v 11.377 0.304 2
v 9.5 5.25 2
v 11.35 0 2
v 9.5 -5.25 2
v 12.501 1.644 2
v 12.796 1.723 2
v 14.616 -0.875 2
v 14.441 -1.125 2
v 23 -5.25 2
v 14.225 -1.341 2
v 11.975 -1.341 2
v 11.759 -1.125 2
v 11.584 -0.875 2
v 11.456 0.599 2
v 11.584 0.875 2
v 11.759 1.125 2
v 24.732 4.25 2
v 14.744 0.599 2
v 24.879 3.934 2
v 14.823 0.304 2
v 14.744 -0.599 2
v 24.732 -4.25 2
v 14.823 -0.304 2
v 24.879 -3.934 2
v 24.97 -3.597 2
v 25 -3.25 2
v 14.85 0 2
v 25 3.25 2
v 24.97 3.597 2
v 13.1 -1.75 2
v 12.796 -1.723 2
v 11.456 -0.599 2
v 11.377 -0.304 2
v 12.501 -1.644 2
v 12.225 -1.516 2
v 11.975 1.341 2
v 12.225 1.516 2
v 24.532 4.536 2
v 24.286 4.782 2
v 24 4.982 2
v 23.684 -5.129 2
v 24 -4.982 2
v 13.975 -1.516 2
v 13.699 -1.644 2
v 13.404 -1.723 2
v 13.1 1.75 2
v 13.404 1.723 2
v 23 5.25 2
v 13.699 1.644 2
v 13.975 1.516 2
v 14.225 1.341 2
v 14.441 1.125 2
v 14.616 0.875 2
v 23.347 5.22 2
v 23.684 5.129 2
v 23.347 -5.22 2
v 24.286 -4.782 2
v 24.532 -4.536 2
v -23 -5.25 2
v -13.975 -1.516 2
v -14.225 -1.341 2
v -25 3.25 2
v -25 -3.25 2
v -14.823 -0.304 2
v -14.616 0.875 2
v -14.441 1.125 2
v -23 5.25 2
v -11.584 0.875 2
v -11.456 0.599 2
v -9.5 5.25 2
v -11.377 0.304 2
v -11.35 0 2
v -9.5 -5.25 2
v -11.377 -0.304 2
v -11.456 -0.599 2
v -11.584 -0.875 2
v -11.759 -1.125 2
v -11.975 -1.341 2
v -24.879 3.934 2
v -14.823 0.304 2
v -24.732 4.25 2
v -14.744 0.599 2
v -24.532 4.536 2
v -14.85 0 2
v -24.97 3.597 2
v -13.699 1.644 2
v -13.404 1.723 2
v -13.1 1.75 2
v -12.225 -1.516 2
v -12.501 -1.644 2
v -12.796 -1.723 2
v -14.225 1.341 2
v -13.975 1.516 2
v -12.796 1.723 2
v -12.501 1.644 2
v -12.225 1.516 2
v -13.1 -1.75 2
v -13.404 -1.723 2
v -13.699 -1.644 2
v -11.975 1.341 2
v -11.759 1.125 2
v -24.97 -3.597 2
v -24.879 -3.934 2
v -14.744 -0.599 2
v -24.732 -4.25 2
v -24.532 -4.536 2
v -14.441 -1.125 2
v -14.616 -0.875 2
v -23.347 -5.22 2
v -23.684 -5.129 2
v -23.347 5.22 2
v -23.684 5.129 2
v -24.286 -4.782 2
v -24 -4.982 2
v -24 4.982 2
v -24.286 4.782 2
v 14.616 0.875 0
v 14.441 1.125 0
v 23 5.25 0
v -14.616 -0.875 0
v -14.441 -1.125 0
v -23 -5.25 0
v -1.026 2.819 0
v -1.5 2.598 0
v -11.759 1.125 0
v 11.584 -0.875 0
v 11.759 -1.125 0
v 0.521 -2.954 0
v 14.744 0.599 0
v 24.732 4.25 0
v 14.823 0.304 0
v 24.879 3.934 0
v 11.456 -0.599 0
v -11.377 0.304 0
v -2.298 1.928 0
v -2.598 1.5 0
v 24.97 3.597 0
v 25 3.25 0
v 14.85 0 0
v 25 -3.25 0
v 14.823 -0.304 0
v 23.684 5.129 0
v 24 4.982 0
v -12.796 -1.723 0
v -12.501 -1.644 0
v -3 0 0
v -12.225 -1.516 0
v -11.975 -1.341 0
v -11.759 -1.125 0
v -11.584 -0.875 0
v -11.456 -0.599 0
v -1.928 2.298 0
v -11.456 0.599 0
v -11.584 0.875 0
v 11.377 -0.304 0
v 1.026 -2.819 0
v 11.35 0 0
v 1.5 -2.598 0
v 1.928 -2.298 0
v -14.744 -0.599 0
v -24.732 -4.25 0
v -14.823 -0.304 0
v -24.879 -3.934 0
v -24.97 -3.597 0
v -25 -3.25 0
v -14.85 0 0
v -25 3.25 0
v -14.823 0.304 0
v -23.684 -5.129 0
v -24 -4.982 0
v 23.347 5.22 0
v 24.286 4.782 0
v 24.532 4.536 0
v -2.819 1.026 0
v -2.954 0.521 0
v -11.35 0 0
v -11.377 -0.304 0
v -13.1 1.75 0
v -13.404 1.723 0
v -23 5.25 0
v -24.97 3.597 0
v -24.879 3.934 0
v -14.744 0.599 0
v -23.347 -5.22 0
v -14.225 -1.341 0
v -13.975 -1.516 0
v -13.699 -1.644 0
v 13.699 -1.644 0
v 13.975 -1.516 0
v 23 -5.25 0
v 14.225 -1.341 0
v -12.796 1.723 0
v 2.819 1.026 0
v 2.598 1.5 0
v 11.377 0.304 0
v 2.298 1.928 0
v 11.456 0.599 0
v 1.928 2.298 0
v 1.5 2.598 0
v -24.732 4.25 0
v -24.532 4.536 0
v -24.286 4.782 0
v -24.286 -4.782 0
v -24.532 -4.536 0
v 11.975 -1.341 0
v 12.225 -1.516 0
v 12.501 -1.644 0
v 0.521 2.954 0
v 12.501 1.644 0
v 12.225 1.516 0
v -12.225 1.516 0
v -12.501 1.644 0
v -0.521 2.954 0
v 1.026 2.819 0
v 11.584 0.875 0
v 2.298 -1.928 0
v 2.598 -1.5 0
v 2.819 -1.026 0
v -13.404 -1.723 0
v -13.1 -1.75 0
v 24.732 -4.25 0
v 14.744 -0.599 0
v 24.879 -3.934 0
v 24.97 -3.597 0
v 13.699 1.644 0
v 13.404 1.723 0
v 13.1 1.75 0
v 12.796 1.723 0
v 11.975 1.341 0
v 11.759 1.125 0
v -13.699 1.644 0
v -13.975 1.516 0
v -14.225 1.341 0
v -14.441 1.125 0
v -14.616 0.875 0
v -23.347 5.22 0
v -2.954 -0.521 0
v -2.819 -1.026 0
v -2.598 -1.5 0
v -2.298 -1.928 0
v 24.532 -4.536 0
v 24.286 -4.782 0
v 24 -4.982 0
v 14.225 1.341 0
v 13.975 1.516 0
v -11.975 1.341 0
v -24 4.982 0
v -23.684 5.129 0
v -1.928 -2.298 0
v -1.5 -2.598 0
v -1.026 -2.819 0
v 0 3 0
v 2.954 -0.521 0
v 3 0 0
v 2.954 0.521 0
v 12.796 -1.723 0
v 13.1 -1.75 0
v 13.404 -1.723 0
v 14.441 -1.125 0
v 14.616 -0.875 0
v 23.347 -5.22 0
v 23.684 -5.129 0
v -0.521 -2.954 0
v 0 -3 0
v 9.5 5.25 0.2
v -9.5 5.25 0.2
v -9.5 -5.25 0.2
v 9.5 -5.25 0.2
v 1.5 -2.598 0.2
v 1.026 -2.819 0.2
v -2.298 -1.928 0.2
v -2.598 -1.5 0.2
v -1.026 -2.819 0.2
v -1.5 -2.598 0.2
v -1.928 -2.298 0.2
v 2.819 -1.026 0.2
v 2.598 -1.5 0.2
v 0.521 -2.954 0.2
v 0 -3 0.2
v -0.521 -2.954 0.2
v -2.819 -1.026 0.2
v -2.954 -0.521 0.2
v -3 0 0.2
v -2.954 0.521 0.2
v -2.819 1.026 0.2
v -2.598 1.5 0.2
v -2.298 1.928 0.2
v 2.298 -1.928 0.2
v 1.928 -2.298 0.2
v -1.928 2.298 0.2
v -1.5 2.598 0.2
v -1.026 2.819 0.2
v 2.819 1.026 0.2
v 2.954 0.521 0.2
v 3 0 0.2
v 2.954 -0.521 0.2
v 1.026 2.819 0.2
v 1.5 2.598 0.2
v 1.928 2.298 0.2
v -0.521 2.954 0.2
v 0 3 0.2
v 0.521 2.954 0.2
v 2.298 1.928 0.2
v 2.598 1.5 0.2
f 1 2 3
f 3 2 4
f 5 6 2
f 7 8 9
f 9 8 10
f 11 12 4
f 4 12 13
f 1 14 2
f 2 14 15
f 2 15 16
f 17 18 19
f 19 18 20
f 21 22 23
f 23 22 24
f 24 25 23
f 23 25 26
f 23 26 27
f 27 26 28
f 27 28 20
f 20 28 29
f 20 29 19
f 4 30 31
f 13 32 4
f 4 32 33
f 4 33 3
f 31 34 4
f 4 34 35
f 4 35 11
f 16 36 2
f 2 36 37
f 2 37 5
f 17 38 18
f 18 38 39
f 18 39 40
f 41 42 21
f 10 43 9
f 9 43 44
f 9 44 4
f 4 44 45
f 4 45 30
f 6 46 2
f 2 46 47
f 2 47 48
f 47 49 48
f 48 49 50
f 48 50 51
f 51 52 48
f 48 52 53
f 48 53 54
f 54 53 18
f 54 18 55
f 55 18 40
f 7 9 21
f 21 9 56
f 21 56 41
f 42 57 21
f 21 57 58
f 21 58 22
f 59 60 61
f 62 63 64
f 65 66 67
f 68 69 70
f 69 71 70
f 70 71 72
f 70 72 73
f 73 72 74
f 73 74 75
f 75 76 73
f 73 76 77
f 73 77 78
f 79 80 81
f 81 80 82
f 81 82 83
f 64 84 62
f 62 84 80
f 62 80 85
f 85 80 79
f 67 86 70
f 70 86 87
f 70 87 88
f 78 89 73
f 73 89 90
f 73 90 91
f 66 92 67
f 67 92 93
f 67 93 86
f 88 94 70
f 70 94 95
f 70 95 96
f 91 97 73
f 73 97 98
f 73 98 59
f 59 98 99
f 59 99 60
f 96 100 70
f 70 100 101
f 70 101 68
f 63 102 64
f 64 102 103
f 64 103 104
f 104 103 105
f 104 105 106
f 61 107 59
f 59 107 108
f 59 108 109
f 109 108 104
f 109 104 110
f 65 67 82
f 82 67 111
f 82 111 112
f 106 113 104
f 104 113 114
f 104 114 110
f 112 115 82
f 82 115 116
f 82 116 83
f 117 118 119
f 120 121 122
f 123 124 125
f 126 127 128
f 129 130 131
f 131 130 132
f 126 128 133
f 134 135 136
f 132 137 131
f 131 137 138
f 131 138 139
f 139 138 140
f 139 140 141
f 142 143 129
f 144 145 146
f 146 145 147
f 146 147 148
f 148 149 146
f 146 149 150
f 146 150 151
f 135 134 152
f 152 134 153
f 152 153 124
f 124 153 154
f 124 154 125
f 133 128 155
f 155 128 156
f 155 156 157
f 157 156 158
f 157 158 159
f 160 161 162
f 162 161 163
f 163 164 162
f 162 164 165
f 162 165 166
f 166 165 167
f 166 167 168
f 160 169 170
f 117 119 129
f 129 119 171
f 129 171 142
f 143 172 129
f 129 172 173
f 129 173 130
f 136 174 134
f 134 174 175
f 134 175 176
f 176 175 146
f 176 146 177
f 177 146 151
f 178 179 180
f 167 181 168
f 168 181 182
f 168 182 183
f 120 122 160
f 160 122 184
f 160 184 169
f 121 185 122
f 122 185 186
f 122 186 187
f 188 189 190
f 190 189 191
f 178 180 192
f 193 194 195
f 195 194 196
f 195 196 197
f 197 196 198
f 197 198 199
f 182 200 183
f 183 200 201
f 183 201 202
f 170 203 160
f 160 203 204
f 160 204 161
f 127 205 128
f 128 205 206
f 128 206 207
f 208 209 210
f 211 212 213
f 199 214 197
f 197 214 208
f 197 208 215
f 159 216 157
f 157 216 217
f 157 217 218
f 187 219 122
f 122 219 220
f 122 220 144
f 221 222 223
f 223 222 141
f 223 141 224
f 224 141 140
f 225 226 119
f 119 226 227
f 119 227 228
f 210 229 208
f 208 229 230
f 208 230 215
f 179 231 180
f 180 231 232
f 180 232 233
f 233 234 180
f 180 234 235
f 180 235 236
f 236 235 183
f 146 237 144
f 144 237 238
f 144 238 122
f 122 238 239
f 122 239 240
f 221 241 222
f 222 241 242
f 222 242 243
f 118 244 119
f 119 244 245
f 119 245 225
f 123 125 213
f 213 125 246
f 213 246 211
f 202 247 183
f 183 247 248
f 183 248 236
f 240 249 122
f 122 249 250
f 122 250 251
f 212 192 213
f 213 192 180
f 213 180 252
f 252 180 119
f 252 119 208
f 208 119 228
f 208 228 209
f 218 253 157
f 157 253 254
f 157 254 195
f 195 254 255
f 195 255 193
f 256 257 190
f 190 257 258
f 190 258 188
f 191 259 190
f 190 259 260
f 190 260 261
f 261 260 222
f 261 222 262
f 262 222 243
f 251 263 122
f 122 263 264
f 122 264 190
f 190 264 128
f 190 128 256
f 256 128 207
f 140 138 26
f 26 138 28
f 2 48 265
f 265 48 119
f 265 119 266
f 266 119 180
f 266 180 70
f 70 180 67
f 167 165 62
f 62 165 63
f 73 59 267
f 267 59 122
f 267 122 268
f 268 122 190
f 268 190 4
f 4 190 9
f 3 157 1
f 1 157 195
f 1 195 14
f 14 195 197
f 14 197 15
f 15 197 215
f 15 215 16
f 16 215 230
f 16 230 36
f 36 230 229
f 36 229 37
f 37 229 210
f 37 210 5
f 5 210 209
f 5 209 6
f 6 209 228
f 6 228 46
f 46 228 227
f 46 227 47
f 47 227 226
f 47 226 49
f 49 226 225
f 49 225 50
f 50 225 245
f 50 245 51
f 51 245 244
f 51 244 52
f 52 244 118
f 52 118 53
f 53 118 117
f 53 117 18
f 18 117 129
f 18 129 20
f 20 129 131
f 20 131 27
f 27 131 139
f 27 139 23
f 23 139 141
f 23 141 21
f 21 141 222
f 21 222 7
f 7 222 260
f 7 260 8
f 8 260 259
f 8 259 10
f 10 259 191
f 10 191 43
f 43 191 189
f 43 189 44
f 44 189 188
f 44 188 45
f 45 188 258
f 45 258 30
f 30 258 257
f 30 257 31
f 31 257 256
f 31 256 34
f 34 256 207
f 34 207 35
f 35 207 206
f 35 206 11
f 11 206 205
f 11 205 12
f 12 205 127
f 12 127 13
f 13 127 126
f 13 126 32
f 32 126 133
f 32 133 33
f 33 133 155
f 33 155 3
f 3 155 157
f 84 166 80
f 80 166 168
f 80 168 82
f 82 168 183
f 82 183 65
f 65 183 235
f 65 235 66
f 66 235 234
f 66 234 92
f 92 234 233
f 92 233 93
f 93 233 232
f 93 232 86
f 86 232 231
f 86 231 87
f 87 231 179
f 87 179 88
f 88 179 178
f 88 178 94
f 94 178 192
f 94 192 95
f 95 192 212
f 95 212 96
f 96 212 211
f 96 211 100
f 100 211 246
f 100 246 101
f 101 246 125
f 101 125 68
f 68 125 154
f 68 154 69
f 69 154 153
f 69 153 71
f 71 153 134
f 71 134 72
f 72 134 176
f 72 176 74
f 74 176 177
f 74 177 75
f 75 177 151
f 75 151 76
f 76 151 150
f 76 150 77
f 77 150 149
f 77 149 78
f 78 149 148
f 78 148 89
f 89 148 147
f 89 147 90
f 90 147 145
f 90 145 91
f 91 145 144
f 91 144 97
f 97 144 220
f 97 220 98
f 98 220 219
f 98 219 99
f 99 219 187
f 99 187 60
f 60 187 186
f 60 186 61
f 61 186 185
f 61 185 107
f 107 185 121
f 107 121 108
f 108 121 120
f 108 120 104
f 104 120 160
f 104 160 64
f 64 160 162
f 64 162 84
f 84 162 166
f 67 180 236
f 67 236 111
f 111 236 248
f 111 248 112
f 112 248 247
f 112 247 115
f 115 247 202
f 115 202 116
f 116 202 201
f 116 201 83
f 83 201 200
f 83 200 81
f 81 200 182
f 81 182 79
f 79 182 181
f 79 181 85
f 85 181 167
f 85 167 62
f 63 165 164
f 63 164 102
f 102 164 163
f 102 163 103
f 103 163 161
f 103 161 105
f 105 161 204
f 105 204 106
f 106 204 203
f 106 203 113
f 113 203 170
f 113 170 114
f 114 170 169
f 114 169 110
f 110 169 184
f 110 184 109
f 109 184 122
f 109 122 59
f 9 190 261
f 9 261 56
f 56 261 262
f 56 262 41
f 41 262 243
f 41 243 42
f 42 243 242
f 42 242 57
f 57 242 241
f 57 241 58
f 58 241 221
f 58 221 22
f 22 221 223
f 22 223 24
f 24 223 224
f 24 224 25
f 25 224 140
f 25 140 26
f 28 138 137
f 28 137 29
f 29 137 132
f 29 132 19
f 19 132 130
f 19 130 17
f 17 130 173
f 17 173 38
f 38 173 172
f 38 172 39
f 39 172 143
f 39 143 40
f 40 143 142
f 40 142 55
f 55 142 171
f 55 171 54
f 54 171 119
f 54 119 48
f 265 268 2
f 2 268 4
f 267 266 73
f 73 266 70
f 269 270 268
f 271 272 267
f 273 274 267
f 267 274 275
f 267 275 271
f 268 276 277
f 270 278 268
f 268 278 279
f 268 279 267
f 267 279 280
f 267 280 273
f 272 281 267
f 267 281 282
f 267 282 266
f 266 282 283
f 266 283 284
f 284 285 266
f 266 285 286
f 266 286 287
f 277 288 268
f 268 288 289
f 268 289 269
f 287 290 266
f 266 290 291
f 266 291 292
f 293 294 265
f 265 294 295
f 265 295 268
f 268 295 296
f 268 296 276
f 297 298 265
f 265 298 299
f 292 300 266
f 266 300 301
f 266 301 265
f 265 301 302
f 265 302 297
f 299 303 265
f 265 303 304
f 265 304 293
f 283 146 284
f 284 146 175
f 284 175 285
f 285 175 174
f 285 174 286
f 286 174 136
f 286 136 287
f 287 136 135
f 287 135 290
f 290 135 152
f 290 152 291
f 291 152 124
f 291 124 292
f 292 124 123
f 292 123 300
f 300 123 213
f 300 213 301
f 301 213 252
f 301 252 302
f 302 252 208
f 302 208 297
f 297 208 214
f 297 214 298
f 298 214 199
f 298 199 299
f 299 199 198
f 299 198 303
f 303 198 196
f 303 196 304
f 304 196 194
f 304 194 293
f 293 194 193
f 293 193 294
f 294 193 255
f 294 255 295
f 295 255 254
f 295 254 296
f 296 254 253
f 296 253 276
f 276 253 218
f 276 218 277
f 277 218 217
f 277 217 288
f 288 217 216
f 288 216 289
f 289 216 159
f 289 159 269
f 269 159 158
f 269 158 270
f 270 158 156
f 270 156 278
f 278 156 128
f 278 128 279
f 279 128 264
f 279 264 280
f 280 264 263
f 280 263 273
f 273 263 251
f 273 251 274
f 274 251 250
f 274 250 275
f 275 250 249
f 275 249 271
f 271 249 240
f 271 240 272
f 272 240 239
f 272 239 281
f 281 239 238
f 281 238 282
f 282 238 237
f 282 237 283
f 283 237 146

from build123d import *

# Parameters (mm, degrees)
SKETCH_1_W          = 50
SKETCH_1_H          = 10.5
SKETCH_1_R          = 1.75
EXTRUDE_1_DEPTH     = 2
FILLET_1_R          = 2
SKETCH_2_W          = 19
SKETCH_2_H          = 10.5
CUT_EXTRUDE_1_DEPTH = 1.8
SKETCH_3_R          = 3
CUT_EXTRUDE_2_DEPTH = 3


with BuildPart() as part:
    # ｽｹｯﾁ1 → ﾎﾞｽ - 押し出し1 (new body)
    with BuildSketch(Plane.XY):
        Rectangle(SKETCH_1_W, SKETCH_1_H)
        with Locations((13.1, 0)):
            Circle(SKETCH_1_R, mode=Mode.SUBTRACT)
        with Locations((-13.1, 0)):
            Circle(SKETCH_1_R, mode=Mode.SUBTRACT)
    extrude(amount=EXTRUDE_1_DEPTH)

    # ﾌｨﾚｯﾄ1
    fillet_1_edges = [part.edges().sort_by_distance(p)[0] for p in [
        (25, -5.25, 1),
        (-25, -5.25, 1),
        (-25, 5.25, 1),
        (25, 5.25, 1),
    ]]
    fillet(fillet_1_edges, radius=FILLET_1_R)

    # ｽｹｯﾁ2 → ｶｯﾄ - 押し出し1 (cut)
    with BuildSketch(Plane.XY.offset(2)):
        Rectangle(SKETCH_2_W, SKETCH_2_H)
    extrude(amount=-CUT_EXTRUDE_1_DEPTH, mode=Mode.SUBTRACT)

    # ｽｹｯﾁ3 → ｶｯﾄ - 押し出し2 (cut, through all)
    with BuildSketch(Plane(origin=(0, 0, 0), x_dir=(-1, 0, 0), z_dir=(0, 0, -1))):
        Circle(SKETCH_3_R)
    extrude(amount=-CUT_EXTRUDE_2_DEPTH, mode=Mode.SUBTRACT)


solid = part.part
